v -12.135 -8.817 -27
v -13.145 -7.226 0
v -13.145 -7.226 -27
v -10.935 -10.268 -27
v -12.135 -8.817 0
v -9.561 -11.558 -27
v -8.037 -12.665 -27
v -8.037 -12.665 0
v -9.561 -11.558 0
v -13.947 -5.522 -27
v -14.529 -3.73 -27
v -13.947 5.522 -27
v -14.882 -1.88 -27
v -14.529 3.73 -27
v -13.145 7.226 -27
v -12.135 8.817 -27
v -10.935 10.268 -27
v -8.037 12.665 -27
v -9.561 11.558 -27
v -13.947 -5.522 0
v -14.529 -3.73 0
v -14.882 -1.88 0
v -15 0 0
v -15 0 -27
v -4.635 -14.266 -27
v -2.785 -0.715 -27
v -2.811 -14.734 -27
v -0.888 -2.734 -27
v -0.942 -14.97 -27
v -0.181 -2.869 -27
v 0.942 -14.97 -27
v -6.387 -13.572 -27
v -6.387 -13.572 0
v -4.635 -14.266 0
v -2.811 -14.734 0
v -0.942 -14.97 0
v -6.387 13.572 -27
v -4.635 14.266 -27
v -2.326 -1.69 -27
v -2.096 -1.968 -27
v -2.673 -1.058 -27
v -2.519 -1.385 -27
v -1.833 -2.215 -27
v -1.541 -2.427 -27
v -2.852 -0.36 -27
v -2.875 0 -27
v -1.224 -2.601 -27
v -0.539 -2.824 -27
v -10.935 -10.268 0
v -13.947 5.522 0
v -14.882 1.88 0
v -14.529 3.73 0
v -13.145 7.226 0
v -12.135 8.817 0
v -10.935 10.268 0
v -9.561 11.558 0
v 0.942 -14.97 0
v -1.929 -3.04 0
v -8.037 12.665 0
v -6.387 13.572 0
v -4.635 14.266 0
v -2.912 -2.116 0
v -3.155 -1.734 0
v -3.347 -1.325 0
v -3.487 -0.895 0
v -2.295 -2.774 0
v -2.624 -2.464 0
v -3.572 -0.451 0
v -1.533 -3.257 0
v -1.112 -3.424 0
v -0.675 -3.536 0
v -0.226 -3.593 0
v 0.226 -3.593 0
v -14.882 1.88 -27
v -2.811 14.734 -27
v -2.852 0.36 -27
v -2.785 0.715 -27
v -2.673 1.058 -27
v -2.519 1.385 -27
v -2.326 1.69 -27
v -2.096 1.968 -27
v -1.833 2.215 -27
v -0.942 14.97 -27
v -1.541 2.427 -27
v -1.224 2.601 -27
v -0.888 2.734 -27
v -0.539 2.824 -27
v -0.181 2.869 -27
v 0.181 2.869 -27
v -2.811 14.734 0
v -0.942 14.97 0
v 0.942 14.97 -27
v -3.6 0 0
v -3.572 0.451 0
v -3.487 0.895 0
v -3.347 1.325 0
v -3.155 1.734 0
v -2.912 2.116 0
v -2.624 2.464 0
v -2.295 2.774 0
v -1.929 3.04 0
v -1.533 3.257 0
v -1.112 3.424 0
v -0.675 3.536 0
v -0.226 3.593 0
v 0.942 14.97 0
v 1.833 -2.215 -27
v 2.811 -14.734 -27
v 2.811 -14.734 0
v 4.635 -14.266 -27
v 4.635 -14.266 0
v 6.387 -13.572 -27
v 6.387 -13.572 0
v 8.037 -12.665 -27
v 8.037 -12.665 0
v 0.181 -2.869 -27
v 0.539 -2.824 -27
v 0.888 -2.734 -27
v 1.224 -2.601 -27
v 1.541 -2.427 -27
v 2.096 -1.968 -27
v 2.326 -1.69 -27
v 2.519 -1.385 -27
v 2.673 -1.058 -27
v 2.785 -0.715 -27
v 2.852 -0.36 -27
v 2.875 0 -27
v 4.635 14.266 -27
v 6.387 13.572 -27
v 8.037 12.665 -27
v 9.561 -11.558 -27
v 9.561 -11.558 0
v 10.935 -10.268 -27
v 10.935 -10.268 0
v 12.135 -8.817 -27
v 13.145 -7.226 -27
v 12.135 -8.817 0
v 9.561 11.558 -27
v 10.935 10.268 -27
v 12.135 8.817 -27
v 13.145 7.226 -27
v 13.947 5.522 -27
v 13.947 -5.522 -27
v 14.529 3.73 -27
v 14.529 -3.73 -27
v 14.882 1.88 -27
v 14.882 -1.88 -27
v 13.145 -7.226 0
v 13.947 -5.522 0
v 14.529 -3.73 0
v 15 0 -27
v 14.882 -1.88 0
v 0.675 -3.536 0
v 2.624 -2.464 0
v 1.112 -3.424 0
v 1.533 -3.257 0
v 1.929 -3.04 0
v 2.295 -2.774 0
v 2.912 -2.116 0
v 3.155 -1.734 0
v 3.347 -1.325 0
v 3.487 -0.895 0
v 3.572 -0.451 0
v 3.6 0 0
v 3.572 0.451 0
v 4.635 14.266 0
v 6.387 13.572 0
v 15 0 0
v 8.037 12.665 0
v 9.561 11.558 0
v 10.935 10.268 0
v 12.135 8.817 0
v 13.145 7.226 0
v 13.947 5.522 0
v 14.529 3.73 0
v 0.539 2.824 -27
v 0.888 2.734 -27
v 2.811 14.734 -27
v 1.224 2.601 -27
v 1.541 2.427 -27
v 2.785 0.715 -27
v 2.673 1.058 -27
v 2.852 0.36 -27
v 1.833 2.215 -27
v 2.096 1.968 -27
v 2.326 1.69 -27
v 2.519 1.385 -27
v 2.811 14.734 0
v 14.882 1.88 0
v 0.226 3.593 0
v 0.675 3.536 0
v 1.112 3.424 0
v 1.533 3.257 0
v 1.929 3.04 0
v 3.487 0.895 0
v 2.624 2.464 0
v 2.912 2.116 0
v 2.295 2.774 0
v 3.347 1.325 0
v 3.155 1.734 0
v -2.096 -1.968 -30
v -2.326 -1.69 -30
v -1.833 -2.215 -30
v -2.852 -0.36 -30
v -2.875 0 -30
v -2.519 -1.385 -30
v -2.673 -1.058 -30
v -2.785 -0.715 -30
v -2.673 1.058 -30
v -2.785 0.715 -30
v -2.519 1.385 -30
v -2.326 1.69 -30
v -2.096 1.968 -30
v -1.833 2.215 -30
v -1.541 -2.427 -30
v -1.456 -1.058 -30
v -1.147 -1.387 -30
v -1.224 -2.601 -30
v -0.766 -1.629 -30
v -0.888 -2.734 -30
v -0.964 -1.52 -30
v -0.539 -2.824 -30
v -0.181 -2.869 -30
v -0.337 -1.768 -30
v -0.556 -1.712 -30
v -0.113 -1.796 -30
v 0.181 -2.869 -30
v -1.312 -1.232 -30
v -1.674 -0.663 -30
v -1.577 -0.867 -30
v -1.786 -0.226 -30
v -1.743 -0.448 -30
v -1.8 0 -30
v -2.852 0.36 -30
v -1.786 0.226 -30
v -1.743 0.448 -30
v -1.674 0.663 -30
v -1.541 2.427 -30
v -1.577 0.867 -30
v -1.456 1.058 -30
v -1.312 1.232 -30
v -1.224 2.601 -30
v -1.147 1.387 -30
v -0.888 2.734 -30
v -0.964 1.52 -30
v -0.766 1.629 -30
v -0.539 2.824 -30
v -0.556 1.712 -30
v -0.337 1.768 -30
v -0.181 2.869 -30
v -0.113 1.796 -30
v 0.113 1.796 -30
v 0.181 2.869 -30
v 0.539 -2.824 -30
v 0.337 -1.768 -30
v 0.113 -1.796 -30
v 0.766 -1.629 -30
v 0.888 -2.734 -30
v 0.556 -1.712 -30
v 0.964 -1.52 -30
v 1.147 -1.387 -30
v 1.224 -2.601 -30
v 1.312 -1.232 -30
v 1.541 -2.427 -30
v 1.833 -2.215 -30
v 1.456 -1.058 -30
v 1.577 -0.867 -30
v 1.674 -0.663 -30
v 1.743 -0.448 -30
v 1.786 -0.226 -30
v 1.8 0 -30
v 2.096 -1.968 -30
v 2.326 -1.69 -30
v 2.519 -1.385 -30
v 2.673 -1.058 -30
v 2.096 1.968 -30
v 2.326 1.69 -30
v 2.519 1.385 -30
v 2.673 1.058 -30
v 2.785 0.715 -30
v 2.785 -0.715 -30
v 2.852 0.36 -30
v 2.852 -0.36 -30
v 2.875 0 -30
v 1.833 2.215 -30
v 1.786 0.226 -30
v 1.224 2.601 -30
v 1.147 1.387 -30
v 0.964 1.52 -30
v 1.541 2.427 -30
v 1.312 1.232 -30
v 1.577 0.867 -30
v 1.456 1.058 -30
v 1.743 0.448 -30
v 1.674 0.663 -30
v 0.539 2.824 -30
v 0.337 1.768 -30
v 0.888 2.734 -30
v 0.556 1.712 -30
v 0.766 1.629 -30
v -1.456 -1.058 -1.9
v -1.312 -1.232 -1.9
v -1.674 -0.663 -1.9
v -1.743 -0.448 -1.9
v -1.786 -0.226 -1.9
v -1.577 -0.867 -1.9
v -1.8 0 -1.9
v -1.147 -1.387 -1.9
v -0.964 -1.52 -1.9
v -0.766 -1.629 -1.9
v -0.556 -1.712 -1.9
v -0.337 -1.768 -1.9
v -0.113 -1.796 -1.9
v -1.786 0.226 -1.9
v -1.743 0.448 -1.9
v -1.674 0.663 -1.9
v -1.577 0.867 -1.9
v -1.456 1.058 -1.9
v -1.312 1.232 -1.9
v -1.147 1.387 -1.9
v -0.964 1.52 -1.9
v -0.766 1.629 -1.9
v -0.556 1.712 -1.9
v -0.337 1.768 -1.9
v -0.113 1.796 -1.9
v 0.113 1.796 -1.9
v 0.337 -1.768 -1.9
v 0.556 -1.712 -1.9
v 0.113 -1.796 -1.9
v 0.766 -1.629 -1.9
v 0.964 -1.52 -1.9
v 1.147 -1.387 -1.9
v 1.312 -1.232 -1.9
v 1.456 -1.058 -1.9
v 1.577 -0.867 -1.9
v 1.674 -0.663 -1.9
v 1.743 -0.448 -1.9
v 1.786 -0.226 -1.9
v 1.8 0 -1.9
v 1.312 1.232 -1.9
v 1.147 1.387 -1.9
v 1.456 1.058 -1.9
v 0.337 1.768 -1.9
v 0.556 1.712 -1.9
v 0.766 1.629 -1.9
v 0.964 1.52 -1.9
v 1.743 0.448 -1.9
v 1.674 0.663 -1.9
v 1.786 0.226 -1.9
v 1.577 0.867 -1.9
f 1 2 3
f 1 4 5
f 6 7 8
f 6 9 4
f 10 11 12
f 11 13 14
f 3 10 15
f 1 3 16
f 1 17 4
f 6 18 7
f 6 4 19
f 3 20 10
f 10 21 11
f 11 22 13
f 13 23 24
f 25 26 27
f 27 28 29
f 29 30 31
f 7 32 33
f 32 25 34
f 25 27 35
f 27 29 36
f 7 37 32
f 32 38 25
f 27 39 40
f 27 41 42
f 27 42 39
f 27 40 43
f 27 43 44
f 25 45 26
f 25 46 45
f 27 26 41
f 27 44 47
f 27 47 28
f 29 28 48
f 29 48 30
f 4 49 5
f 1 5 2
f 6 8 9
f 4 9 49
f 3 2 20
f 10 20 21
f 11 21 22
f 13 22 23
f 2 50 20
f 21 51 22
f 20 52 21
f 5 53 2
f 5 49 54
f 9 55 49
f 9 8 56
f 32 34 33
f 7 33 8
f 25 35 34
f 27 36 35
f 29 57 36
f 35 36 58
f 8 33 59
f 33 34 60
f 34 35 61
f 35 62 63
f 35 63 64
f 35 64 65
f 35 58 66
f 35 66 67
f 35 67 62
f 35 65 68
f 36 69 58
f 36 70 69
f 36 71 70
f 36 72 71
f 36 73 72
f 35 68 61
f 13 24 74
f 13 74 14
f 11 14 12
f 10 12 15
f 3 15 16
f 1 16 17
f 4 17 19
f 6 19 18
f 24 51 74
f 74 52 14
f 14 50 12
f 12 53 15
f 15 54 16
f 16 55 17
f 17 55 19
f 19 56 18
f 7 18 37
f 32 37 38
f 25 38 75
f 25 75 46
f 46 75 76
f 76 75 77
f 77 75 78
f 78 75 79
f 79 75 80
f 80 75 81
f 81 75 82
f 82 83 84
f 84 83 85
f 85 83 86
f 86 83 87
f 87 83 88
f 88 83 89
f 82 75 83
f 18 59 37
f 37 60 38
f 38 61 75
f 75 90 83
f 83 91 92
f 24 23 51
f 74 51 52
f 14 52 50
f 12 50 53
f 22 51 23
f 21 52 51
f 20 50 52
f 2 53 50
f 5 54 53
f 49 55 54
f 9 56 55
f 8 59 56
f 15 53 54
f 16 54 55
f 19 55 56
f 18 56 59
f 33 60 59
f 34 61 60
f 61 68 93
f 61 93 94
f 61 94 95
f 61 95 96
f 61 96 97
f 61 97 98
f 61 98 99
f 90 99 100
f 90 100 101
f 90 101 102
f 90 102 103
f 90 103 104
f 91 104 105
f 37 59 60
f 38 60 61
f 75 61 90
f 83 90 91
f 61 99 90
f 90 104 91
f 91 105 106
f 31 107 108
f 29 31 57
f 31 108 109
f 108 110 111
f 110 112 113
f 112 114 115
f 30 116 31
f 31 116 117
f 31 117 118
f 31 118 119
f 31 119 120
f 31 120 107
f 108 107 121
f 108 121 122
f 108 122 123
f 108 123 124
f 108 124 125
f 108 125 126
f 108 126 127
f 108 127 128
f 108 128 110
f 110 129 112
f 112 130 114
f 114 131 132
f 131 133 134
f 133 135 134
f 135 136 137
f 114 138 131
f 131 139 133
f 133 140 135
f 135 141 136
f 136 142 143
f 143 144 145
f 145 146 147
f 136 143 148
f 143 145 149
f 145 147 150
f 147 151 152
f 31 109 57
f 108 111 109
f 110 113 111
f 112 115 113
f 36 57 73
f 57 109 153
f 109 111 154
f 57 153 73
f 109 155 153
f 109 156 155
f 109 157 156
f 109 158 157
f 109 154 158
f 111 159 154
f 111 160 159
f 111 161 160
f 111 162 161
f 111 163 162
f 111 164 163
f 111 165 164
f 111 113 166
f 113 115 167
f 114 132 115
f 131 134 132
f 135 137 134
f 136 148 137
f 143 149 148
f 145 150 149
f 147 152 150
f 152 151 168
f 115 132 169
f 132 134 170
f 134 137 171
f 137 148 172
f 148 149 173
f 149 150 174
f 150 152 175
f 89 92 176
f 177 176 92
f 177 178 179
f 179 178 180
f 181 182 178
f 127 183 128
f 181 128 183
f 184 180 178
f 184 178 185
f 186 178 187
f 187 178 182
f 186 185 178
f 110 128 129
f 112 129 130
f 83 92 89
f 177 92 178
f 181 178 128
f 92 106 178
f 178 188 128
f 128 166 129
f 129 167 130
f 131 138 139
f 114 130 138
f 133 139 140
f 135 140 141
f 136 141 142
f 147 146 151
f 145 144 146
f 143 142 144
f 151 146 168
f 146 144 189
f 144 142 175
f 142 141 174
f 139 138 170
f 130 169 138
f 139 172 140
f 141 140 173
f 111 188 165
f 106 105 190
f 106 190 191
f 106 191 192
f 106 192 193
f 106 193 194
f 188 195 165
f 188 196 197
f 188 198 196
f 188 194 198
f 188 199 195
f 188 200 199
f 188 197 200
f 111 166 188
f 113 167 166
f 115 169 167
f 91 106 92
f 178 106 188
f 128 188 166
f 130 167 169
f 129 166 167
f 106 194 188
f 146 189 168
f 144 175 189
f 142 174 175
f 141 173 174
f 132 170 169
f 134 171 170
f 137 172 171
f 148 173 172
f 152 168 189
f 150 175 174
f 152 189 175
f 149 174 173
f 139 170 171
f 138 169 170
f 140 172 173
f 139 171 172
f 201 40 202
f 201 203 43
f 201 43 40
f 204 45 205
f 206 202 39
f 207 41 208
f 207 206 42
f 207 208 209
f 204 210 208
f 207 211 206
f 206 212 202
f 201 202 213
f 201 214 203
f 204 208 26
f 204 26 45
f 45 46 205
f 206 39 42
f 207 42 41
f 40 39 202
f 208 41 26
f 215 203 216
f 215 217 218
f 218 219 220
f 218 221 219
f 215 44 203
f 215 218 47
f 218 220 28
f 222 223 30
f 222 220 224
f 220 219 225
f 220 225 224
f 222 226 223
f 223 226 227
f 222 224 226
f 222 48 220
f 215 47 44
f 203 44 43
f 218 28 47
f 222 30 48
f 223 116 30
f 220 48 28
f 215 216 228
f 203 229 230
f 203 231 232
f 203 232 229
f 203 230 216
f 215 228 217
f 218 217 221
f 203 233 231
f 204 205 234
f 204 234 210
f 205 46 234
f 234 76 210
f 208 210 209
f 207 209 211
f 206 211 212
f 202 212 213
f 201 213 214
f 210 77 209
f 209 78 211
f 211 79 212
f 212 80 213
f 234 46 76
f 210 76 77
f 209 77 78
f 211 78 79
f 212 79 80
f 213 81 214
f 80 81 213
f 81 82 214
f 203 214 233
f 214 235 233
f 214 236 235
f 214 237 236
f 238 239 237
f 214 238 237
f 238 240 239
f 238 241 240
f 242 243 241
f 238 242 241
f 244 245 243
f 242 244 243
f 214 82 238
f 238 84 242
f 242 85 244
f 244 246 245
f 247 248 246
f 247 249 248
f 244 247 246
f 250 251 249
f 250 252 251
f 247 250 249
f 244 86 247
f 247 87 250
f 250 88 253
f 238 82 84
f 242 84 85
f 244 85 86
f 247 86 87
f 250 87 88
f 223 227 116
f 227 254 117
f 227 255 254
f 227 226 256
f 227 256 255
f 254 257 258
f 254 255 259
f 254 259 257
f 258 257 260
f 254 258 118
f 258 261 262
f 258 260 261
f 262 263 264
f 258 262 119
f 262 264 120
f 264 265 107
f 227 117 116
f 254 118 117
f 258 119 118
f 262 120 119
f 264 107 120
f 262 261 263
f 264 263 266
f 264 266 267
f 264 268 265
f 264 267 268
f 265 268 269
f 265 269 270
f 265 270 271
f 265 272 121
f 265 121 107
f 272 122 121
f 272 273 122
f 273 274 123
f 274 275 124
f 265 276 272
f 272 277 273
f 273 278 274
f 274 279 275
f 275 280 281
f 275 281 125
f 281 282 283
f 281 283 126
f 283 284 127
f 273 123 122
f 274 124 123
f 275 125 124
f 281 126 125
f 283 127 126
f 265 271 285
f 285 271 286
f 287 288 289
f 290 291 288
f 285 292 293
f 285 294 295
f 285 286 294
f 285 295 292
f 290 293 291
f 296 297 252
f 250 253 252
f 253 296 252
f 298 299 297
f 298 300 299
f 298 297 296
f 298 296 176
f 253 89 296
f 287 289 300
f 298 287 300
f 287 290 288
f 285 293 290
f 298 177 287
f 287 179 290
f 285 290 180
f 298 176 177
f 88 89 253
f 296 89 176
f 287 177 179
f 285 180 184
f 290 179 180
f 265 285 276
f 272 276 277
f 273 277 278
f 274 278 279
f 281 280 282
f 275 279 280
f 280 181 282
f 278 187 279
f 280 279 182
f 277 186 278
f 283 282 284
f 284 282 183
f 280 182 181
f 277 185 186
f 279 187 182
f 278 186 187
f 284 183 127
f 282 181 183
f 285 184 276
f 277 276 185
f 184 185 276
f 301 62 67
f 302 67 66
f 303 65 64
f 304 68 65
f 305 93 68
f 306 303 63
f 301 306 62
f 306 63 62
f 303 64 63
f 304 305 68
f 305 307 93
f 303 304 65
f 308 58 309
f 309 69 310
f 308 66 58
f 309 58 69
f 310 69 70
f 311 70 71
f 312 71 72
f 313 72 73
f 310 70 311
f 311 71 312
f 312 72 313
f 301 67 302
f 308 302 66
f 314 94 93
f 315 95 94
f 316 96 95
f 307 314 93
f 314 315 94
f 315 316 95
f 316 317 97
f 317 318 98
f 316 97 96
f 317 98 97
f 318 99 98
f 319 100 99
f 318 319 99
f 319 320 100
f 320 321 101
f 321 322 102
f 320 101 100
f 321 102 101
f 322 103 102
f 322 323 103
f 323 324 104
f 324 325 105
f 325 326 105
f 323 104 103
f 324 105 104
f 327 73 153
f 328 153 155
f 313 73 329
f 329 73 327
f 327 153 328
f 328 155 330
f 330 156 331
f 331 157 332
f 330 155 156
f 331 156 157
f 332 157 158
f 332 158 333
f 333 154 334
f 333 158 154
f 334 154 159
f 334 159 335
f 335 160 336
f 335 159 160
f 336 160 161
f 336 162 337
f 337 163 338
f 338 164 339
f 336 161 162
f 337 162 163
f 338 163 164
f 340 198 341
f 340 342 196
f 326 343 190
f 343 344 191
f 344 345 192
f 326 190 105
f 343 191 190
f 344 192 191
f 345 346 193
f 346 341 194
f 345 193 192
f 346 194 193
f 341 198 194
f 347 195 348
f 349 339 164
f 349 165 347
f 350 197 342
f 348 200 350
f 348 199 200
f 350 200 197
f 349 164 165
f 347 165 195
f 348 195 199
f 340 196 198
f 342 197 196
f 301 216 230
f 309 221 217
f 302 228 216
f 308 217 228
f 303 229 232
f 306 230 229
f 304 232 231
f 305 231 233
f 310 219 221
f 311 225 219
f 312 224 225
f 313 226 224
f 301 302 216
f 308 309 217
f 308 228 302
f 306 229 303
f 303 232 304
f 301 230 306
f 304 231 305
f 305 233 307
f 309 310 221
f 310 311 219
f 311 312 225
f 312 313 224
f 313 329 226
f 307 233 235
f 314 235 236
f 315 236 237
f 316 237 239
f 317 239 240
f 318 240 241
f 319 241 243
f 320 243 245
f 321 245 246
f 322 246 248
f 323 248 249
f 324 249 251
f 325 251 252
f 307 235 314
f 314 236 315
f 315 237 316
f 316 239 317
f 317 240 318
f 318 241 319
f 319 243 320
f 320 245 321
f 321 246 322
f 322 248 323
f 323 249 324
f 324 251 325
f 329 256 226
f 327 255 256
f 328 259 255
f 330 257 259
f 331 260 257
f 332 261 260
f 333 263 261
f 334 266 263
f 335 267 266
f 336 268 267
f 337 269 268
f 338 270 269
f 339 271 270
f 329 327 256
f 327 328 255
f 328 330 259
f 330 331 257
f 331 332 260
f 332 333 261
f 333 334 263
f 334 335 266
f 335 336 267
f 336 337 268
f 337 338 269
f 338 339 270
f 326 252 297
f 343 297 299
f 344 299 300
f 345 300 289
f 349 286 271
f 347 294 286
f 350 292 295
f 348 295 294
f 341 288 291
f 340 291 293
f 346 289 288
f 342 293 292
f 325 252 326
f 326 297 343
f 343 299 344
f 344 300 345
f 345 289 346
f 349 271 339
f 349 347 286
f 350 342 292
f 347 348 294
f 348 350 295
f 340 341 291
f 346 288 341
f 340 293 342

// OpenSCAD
$fn = 50;

difference() {
	union() {
		translate(v = [0, 0, -27.0]) {
			cylinder(h = 27, r = 15.0);
		}
		#translate(v = [0, 0, -30.0]) {
			cylinder(h = 30, r = 2.875);
		}
	}
	union() {
		translate(v = [0, 0, 0]) {
			rotate(a = [0, 0, 0]) {
				difference() {
					union() {
						translate(v = [0, 0, -30.0]) {
							cylinder(h = 30, r = 1.5);
						}
						translate(v = [0, 0, -1.9]) {
							cylinder(h = 1.9, r1 = 1.8, r2 = 3.6);
						}
						translate(v = [0, 0, -30.0]) {
							cylinder(h = 30, r = 1.8);
						}
						translate(v = [0, 0, -30.0]) {
							cylinder(h = 30, r = 1.5);
						}
					}
					union();
				}
			}
		}
	}
}
